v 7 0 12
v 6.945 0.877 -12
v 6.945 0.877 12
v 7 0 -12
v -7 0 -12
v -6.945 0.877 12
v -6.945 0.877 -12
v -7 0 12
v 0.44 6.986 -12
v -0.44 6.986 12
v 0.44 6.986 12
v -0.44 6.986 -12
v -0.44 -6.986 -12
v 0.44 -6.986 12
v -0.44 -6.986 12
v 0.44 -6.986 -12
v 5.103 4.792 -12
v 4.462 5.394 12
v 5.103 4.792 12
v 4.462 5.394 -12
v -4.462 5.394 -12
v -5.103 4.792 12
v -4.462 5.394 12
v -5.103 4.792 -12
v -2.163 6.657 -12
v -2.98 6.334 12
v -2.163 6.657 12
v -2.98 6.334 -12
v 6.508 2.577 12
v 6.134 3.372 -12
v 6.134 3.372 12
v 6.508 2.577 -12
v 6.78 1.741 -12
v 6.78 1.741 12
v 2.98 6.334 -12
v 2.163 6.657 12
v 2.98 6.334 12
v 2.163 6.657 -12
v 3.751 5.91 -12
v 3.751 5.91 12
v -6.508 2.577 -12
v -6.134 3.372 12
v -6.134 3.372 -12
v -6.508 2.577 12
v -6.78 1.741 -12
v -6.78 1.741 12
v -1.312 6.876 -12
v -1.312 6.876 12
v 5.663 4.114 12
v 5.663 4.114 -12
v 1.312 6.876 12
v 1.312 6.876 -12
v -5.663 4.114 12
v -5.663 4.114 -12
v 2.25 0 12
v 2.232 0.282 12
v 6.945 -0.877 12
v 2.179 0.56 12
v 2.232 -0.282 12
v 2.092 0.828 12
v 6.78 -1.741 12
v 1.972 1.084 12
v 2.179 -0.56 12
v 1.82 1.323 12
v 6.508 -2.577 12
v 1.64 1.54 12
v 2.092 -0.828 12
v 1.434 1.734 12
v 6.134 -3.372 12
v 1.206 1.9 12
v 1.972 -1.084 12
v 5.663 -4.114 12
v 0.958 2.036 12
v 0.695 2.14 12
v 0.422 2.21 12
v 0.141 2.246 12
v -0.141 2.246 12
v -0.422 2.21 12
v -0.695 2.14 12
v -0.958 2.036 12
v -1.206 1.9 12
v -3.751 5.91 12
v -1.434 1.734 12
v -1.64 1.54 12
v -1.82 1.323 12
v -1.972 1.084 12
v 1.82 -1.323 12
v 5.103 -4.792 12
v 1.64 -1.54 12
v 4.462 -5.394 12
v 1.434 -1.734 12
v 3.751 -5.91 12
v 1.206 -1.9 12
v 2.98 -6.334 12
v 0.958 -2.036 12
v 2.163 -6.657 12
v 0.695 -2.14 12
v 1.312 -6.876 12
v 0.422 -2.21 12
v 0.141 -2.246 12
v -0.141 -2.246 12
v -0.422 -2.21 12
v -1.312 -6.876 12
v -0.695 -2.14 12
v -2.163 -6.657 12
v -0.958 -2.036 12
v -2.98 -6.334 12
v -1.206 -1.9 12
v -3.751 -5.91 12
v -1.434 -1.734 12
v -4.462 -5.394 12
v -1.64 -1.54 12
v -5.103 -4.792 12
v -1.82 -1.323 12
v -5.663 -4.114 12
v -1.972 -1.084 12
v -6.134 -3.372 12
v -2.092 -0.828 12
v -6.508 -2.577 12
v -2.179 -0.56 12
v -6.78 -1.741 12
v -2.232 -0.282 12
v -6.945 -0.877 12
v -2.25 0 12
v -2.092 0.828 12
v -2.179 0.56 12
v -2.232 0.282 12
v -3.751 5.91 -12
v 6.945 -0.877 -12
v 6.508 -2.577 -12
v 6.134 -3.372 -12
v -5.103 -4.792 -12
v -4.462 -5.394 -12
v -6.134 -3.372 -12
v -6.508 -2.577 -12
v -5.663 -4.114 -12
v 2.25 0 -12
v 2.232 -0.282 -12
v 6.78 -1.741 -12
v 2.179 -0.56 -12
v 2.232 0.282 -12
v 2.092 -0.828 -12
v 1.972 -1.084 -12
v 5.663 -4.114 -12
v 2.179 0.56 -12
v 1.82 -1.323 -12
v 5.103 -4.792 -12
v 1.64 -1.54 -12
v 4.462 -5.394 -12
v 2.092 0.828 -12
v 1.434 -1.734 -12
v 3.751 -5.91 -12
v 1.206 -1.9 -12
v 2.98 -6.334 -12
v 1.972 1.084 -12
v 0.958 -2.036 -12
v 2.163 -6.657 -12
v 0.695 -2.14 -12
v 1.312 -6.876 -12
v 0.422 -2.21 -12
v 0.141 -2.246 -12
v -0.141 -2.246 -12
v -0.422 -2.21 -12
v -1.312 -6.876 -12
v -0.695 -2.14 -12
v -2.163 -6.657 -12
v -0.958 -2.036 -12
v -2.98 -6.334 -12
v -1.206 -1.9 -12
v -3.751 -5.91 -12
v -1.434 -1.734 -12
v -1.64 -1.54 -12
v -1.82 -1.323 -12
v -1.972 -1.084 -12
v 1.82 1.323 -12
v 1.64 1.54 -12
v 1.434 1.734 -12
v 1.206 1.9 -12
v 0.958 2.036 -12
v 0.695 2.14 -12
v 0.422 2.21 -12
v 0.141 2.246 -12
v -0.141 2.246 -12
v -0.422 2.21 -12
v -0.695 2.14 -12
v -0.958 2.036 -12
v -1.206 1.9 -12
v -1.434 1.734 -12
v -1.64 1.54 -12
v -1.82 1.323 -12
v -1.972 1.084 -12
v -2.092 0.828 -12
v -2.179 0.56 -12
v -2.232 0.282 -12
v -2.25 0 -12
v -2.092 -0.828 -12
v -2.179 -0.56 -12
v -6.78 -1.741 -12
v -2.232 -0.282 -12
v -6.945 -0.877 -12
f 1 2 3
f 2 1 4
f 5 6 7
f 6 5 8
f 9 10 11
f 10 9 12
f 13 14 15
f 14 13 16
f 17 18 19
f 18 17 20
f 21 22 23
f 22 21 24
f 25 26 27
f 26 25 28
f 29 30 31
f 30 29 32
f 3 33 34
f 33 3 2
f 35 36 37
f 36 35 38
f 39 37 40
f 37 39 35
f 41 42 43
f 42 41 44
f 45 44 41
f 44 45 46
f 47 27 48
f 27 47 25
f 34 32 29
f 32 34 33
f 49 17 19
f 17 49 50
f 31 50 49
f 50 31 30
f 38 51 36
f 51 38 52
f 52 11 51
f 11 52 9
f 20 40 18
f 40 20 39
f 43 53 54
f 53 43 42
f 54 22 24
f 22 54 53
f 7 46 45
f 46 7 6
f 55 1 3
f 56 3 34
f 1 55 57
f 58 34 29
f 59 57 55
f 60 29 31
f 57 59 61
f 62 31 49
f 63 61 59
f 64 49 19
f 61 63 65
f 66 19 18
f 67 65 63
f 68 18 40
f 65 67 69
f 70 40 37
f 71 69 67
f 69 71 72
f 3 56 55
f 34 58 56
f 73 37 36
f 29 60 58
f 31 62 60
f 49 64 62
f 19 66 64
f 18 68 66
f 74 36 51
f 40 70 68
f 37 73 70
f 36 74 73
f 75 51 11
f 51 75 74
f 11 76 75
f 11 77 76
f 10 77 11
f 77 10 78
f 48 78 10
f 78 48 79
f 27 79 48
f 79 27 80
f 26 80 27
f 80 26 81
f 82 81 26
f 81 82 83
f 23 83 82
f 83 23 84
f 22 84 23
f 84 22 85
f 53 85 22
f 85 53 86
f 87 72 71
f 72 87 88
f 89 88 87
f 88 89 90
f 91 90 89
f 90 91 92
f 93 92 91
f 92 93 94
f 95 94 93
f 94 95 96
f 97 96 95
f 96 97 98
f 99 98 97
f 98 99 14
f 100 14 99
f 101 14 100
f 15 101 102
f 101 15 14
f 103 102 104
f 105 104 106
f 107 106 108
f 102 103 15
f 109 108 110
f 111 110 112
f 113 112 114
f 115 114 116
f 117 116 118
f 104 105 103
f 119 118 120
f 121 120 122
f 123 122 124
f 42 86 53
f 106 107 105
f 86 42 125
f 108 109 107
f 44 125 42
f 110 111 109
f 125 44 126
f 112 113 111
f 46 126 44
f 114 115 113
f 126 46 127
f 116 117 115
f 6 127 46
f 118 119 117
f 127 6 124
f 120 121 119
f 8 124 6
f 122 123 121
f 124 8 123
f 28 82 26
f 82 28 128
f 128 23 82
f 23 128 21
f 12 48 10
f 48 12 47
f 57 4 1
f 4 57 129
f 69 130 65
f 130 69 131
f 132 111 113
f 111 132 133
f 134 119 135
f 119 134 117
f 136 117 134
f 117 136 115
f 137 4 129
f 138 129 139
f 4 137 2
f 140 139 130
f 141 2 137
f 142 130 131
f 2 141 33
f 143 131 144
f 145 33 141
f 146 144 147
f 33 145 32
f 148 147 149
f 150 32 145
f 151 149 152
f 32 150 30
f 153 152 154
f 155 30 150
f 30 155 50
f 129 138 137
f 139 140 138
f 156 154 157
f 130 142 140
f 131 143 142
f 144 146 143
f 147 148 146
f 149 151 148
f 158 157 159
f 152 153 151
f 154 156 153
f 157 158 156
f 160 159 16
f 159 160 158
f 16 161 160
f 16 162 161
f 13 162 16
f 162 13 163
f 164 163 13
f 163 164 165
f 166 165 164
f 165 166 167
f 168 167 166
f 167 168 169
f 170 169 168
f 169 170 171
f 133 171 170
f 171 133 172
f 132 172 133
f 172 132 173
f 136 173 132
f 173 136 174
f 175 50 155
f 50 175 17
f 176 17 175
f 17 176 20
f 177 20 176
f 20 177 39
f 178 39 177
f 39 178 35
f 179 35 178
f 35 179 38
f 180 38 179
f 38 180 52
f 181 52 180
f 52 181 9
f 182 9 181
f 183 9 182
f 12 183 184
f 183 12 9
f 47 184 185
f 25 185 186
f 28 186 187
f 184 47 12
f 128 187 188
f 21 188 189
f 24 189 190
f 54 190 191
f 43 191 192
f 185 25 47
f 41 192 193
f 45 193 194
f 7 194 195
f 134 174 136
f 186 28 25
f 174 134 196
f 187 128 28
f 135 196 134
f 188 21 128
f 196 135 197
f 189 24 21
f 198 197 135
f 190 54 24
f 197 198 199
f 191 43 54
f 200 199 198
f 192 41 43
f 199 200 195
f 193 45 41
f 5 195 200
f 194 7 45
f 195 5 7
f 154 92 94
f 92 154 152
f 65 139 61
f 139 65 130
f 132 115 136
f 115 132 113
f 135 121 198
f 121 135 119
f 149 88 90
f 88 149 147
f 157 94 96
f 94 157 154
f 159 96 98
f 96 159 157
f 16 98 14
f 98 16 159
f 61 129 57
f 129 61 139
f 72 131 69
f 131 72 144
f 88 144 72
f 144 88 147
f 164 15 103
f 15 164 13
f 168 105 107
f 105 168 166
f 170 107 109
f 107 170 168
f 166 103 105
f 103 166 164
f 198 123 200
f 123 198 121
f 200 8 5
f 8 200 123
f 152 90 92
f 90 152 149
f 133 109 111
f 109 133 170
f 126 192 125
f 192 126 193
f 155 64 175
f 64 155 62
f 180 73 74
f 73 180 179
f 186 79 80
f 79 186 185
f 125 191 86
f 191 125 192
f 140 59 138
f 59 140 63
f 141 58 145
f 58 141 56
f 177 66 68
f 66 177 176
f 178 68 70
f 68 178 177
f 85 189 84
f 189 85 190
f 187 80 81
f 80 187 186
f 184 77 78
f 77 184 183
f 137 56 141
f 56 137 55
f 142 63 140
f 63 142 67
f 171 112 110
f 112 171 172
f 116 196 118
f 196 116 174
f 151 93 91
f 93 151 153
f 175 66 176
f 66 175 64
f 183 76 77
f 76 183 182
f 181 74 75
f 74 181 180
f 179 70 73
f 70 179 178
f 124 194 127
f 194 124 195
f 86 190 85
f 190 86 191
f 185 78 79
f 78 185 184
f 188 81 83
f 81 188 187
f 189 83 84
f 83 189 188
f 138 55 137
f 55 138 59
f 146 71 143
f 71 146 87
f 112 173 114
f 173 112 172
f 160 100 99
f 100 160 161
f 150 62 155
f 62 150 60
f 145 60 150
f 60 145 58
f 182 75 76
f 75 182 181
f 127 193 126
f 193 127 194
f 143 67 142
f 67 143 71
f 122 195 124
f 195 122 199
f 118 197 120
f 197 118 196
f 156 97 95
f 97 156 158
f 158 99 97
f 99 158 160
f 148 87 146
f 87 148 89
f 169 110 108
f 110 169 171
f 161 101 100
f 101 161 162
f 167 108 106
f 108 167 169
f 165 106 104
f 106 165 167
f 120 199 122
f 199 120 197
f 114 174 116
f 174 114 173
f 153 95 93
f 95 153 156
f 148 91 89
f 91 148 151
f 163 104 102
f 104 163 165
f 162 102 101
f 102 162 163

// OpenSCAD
$fn = 50;


difference() {
	union() {
		translate(v = [0, 0, -12.0000000000]) {
			cylinder(h = 24, r = 7.0000000000);
		}
	}
	union() {
		translate(v = [0, 0, -100.0000000000]) {
			cylinder(h = 200, r = 2.2500000000);
		}
	}
}
